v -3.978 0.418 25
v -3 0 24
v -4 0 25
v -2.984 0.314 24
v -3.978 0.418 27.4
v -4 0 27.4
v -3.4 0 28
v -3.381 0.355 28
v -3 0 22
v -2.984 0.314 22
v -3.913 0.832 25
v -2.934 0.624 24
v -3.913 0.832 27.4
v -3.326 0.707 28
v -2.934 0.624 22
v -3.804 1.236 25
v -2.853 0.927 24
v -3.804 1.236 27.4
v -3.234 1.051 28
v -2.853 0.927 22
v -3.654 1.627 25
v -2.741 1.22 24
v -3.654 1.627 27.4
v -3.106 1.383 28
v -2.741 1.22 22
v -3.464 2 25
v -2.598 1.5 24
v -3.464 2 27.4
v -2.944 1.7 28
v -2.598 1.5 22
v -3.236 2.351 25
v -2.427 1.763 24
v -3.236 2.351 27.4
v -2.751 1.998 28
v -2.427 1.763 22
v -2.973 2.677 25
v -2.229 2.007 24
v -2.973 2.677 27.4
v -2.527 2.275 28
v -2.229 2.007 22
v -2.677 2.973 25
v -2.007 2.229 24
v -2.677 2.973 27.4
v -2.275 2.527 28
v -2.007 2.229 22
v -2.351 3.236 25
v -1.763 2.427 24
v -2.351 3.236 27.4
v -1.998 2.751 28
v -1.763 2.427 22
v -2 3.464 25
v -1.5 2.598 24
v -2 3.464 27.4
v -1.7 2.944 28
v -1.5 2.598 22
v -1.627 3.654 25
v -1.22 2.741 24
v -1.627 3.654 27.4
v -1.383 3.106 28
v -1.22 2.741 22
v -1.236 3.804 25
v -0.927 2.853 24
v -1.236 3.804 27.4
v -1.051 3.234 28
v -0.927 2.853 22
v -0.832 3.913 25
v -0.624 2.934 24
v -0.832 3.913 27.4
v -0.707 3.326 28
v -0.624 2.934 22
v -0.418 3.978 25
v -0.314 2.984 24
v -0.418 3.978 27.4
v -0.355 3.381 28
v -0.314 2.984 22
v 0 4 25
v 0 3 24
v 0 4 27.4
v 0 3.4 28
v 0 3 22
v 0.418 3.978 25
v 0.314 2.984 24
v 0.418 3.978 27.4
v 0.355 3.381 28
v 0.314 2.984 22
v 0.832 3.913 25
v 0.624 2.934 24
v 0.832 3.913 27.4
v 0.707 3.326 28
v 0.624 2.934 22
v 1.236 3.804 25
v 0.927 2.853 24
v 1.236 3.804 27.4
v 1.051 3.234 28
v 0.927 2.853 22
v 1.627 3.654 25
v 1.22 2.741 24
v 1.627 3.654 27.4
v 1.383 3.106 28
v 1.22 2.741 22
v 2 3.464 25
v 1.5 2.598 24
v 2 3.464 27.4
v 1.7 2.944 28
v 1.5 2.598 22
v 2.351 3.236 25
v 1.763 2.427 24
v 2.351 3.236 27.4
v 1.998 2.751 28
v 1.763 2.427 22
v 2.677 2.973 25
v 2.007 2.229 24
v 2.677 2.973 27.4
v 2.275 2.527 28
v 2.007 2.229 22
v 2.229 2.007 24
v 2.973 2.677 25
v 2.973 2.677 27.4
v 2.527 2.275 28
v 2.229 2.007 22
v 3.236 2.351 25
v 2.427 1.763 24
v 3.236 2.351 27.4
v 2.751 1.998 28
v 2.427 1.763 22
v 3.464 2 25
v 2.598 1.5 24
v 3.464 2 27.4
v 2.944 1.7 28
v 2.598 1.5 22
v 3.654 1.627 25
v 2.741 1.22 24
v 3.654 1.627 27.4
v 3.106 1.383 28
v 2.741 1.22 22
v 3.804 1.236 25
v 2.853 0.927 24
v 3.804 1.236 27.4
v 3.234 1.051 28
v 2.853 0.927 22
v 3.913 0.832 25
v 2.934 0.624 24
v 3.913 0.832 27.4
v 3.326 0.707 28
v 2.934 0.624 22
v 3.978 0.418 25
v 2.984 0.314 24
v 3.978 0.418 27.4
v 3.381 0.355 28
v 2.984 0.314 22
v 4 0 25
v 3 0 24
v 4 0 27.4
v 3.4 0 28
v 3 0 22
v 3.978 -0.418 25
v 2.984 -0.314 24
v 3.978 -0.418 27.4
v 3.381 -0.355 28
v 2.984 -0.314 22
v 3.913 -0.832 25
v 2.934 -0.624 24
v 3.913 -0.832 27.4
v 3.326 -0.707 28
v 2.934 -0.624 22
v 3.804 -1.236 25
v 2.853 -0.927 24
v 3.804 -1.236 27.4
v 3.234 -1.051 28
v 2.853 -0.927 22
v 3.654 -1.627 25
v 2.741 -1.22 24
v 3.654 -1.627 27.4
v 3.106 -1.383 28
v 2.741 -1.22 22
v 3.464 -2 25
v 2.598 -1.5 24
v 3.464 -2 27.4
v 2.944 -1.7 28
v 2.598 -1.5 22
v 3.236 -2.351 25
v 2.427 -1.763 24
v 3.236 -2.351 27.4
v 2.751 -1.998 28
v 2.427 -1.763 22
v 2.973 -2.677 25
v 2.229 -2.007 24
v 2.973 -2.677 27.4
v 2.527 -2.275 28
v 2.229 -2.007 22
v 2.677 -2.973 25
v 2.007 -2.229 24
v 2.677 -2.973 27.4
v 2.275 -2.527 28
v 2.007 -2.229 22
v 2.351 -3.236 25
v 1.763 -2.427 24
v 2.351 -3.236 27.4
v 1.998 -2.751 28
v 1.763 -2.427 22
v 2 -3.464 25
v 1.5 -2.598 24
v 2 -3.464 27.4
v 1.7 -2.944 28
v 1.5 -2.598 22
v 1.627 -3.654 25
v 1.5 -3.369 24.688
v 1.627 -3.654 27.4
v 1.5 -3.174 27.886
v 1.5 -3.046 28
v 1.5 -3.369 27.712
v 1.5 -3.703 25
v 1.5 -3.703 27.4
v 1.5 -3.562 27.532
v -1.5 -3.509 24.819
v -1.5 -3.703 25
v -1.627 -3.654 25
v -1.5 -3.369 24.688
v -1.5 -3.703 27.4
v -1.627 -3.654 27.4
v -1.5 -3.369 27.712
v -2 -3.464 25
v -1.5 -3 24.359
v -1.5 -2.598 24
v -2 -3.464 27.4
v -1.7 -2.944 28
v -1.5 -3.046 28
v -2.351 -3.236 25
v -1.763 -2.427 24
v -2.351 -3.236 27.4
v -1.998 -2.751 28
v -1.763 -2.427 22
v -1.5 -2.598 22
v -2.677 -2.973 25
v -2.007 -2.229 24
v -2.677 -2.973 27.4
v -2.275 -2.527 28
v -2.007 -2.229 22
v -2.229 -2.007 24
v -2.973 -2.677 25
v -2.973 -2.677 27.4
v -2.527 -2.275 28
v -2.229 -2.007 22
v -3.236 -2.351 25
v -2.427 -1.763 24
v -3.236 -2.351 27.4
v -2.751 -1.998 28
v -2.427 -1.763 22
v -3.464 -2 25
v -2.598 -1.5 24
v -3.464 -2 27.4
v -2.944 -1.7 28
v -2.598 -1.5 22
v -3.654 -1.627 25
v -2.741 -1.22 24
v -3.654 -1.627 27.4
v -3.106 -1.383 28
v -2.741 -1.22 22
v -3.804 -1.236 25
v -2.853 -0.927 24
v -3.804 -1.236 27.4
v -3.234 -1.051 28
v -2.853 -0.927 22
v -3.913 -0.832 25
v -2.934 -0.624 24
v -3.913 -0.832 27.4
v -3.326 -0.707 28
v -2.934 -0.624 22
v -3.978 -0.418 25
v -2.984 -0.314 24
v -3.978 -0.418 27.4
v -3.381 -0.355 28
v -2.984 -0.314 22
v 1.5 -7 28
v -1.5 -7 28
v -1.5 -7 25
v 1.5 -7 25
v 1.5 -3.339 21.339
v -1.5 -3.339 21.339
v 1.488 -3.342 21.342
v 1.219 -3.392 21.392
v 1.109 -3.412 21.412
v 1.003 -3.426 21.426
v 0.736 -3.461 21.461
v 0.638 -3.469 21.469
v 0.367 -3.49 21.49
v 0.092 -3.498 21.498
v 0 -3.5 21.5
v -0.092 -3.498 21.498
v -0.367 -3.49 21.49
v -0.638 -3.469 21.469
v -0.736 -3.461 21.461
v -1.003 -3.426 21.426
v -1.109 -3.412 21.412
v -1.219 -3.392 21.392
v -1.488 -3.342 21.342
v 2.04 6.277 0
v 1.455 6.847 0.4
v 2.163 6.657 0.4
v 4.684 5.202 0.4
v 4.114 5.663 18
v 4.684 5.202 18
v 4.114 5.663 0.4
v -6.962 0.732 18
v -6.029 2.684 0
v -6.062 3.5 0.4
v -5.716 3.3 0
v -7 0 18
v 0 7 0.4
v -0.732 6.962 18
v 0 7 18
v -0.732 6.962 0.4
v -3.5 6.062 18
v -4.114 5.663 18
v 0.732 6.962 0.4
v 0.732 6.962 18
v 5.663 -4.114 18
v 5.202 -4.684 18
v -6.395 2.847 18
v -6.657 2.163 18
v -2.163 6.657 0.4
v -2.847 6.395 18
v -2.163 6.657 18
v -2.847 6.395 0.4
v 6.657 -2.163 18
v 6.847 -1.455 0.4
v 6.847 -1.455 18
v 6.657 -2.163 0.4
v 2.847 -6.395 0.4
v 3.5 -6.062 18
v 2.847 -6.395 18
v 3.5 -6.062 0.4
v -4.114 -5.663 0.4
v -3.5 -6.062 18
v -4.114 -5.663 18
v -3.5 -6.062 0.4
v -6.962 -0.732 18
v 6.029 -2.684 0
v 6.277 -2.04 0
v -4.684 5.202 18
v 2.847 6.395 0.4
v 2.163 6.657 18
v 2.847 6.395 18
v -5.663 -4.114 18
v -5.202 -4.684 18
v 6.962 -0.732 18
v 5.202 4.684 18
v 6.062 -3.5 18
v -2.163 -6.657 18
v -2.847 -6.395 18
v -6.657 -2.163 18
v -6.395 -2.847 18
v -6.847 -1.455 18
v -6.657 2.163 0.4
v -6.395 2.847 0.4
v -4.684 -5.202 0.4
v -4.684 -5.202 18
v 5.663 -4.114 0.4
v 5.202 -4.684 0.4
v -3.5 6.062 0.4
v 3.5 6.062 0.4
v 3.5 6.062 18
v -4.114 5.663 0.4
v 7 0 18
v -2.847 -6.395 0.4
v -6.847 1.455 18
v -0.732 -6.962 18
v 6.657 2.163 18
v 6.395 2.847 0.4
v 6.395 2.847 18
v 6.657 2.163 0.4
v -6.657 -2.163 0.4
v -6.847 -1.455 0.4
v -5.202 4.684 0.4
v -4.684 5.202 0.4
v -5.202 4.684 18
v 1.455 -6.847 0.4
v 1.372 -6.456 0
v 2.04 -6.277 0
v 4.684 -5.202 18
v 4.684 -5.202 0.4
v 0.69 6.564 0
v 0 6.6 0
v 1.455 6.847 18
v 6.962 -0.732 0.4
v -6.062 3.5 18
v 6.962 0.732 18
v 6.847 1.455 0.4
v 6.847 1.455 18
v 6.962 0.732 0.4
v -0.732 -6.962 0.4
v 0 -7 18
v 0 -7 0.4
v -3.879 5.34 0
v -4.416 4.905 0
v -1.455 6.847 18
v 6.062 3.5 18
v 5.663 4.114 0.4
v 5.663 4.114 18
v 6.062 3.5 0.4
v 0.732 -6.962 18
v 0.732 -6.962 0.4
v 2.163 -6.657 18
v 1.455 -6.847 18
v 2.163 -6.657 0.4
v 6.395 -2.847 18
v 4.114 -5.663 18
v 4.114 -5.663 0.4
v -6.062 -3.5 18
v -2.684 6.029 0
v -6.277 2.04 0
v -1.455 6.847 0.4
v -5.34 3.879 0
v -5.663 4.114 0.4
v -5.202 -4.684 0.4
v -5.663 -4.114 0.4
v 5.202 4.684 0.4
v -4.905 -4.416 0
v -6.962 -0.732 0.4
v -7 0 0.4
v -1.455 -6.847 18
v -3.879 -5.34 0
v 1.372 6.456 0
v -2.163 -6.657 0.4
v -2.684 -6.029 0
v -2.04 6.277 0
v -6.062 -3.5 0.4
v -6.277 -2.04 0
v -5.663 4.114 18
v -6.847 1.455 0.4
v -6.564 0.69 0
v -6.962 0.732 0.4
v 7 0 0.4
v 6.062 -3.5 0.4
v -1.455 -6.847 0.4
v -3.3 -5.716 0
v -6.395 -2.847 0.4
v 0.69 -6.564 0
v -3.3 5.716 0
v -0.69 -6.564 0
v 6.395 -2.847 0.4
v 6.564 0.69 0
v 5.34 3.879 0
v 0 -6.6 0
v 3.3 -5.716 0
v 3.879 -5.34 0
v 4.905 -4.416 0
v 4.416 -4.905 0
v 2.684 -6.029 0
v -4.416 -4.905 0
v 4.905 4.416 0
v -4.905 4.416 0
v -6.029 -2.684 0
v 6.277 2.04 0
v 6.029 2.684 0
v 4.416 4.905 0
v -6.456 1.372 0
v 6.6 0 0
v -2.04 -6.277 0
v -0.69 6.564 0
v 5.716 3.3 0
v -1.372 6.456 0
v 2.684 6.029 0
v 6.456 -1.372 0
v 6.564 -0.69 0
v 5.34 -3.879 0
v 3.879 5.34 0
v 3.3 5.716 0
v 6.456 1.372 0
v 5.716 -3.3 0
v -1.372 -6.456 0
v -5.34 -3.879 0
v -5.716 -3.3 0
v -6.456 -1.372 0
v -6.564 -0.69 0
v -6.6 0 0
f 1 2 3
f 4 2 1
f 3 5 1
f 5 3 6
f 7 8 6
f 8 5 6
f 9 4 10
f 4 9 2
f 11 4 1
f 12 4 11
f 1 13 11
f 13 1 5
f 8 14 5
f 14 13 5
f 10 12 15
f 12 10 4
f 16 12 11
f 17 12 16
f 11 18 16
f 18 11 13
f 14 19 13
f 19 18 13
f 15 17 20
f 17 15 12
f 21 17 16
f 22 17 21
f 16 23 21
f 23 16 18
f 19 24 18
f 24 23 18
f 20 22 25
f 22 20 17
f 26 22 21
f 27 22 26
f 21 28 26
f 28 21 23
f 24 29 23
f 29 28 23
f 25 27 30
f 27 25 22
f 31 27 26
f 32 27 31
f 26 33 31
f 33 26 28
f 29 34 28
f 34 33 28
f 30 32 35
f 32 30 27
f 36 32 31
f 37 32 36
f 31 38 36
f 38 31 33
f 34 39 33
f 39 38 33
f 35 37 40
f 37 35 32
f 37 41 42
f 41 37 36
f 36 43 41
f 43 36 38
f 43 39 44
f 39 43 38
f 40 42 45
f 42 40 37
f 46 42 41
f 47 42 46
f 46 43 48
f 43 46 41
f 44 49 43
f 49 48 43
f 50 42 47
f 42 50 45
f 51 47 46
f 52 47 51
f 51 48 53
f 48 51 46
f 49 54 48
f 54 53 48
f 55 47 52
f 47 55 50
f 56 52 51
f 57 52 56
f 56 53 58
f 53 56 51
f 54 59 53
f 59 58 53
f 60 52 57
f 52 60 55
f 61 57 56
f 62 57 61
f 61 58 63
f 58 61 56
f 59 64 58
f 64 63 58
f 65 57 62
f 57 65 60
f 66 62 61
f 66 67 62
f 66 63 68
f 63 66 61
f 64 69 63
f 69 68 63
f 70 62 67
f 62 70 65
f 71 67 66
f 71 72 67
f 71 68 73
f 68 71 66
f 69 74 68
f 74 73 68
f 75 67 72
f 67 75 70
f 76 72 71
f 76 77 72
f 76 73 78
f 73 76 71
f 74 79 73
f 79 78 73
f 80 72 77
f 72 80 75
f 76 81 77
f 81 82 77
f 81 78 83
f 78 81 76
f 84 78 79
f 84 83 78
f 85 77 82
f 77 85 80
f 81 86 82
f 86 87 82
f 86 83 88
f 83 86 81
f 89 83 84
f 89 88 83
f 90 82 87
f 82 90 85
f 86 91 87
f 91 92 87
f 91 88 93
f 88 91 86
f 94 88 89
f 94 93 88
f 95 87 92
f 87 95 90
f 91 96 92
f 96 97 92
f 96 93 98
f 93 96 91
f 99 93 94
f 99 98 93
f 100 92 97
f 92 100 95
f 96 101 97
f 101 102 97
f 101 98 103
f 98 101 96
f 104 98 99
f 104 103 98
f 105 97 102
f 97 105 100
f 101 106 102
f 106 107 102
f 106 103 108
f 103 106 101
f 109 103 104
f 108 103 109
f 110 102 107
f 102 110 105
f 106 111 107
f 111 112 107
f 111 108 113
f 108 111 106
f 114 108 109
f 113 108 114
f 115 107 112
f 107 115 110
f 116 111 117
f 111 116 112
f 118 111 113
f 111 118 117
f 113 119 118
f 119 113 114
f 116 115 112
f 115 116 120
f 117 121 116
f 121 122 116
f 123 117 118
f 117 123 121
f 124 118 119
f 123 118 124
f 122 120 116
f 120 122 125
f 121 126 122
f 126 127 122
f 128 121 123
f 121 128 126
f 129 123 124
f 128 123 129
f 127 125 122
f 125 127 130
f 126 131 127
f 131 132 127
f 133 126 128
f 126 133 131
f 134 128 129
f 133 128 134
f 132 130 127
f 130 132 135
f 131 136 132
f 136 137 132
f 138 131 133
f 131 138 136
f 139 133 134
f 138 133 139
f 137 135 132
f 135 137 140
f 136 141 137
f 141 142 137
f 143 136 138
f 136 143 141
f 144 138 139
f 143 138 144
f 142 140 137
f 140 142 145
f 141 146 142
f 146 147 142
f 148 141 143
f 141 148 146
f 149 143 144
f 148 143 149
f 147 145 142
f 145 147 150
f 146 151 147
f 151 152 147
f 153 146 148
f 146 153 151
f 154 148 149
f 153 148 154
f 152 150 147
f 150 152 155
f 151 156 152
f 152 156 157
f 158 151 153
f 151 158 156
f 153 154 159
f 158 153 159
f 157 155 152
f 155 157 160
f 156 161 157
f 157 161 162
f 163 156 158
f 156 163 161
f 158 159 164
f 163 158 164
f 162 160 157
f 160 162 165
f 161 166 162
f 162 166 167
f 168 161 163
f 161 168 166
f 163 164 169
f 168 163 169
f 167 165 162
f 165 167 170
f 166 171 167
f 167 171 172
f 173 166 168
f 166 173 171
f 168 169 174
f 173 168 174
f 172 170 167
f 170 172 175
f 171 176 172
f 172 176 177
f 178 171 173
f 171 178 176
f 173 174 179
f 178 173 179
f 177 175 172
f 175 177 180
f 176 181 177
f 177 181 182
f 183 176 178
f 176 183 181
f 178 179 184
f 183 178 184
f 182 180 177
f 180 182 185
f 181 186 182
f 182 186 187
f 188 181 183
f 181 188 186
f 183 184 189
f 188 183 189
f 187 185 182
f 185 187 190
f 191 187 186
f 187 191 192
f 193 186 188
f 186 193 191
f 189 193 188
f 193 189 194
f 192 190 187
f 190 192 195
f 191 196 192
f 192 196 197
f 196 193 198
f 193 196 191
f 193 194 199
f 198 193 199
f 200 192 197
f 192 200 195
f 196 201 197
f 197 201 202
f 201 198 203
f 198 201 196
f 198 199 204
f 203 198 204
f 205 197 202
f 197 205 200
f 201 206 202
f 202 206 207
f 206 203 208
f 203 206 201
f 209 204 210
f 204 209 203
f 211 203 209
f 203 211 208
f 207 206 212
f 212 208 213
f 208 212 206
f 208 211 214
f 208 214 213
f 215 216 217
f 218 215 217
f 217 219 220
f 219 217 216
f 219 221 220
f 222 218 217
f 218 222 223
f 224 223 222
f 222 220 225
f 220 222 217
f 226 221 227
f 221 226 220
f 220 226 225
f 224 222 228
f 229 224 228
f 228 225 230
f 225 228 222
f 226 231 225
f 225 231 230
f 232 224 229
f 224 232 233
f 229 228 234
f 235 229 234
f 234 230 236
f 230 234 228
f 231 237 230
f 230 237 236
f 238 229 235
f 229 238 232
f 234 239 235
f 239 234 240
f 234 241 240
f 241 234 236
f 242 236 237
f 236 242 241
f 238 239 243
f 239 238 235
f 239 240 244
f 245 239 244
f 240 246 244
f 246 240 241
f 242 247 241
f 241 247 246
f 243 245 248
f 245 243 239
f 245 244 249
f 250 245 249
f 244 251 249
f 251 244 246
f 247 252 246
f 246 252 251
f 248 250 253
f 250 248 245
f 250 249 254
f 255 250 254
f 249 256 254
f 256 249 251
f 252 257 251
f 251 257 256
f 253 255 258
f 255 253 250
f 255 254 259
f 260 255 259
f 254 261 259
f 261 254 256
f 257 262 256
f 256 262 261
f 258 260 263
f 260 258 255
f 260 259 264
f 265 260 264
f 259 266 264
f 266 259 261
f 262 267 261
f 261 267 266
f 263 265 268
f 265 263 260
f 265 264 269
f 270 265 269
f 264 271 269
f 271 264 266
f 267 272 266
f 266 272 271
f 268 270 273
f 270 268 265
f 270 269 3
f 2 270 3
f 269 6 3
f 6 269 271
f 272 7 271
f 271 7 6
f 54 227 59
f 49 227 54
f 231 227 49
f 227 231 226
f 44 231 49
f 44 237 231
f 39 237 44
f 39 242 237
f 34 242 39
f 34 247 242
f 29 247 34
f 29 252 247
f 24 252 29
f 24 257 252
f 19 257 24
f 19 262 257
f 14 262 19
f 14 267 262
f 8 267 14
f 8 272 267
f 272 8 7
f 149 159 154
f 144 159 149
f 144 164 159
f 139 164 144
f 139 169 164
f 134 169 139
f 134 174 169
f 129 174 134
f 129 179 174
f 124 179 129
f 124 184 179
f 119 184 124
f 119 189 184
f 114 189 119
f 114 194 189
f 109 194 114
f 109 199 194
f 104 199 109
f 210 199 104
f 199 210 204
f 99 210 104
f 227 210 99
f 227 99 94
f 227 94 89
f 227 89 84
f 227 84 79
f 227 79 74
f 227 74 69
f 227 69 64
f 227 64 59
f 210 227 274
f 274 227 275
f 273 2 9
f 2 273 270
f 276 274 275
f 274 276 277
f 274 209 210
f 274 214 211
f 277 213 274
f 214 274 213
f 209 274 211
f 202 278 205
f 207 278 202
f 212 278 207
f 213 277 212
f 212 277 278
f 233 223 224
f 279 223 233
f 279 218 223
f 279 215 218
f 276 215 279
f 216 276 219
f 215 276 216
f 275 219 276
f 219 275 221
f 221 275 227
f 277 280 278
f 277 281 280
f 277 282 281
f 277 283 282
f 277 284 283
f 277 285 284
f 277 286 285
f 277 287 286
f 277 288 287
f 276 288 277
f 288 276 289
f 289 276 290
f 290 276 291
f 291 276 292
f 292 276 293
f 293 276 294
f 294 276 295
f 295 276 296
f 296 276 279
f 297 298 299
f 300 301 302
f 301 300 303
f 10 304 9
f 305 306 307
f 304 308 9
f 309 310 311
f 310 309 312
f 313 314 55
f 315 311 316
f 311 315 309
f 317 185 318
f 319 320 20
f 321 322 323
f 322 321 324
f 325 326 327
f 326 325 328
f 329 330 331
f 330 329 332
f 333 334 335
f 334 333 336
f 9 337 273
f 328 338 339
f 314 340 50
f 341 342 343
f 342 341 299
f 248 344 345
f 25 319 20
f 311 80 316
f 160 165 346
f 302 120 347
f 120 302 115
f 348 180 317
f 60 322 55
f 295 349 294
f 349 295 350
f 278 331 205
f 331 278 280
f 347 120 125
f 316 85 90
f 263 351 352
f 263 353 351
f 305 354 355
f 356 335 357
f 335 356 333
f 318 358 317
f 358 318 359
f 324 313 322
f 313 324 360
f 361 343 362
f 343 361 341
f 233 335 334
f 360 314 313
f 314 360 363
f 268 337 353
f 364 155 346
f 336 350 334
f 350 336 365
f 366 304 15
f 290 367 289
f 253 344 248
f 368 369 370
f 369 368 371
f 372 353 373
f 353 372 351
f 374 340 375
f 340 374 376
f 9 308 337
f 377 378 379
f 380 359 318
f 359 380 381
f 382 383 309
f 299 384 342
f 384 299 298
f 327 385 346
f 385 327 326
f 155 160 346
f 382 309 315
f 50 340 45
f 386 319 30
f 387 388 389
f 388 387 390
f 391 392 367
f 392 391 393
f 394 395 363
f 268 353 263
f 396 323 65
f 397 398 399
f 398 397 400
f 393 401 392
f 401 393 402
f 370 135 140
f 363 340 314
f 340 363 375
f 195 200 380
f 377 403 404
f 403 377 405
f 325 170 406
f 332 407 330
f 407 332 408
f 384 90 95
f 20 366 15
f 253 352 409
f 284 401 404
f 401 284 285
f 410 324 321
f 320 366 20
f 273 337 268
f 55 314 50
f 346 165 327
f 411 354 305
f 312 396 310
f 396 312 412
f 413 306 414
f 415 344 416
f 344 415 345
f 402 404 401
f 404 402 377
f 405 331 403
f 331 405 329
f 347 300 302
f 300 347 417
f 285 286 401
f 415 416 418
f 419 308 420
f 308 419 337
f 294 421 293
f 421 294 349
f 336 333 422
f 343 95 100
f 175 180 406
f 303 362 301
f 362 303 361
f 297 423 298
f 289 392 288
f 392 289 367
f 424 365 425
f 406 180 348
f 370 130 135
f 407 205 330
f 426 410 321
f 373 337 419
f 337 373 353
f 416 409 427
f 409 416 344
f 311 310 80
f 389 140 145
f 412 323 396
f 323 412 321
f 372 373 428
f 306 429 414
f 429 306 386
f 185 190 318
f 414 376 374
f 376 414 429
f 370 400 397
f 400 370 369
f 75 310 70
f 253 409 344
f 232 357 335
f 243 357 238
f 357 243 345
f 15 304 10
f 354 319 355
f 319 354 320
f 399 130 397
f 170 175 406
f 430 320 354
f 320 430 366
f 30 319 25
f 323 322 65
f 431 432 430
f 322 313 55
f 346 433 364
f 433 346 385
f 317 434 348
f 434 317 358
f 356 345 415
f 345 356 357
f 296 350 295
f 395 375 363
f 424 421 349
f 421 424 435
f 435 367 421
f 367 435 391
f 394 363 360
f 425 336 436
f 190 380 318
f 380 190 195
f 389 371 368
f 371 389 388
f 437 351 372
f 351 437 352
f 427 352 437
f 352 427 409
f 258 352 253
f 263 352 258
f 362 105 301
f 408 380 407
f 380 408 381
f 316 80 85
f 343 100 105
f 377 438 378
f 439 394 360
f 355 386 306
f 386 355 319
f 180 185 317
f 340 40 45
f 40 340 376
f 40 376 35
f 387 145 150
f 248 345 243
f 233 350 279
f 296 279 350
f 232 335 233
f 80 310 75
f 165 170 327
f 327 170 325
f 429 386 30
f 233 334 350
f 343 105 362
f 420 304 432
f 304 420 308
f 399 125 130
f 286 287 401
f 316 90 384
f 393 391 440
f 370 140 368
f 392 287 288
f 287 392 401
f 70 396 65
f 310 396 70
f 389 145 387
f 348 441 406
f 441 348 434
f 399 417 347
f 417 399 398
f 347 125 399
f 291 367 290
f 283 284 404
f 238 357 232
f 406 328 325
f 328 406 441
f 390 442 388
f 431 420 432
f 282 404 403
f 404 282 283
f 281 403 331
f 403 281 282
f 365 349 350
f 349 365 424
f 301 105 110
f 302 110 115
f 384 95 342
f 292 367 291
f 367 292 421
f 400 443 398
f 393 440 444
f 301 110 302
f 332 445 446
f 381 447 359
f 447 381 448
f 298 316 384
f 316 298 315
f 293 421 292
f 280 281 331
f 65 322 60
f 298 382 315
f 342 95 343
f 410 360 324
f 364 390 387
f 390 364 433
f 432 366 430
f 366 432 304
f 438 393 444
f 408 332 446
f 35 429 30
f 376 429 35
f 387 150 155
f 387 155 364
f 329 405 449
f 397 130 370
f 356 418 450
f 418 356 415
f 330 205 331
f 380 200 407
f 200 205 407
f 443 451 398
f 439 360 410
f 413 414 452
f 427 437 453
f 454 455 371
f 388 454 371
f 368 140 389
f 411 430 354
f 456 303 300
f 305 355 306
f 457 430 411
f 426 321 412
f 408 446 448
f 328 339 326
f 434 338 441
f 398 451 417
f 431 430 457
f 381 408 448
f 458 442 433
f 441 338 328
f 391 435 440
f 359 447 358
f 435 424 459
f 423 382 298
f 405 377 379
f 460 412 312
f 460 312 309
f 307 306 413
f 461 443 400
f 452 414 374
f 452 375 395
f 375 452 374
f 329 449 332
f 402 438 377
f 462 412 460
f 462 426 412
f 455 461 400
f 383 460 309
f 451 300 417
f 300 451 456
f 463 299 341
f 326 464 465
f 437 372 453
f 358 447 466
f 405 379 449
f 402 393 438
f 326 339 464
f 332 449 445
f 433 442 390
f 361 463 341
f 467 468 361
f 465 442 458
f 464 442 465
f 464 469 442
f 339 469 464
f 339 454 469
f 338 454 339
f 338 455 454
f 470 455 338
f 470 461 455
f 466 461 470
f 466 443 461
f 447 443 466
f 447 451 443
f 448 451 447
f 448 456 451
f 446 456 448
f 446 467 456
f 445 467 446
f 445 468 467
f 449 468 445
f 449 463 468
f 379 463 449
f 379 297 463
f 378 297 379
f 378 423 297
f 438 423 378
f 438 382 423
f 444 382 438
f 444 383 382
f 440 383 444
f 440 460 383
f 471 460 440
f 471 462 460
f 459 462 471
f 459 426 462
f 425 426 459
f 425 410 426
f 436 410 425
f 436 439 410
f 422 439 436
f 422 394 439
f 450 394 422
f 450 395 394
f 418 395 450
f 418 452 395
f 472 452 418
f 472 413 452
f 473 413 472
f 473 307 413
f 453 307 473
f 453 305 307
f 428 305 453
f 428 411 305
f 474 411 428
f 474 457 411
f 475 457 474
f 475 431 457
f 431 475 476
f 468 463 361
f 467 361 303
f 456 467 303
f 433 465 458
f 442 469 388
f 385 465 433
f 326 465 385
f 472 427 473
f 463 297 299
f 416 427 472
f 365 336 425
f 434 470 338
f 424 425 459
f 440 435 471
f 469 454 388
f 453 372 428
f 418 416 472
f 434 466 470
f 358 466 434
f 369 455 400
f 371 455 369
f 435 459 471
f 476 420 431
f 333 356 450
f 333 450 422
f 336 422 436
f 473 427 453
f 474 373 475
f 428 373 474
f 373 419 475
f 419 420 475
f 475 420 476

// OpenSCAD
// hand_rub_bottle.scad - pump bottle of alcohol hand rub (design_brief.md 4.10). Dia 14 x 28:
// body to 18, 45 deg shoulder to a dia 6 neck at 22, pump head dia 8 to 28 reached by a
// 45 deg flare from the neck, 3 x 3 spout with a 45 deg underside reaching to the body
// radius. Two colours: body and shoulder, then neck and pump; change at Z 22.0.
// Prints upright.   Export: openscad -o hand_rub_bottle.stl hand_rub_bottle.scad
include <common.scad>

diameter    = 14;
body_h      = 18;
neck_d      = 6;
change_z    = 22;        // top of the shoulder, colour change
neck_h      = 2;         // straight neck above the change, before the flare to the head
head_d      = 8;
height      = 28;
spout       = 3;         // spout section (width and height) and reach beyond the head
top_chamfer = 0.6;

r  = diameter / 2;
rn = neck_d / 2;
rh = head_d / 2;
fn = 60;                 // same segment count for both bands, so they meet exactly at the change

// Band 1: body and shoulder, Z 0-22
module bottle_body() rotate_extrude($fn = fn)
    polygon([[0, 0], [r - chamfer_bottom, 0], [r, chamfer_bottom], [r, body_h], [rn, change_z], [0, change_z]]);

// Band 2: neck, flare, pump head and spout, Z 22-28
module bottle_pump() {
    rotate_extrude($fn = fn)
        polygon([[0, change_z], [rn, change_z], [rn, change_z + neck_h], [rh, change_z + neck_h + rh - rn],
                 [rh, height - top_chamfer], [rh - top_chamfer, height], [0, height]]);
    // spout in the y-z plane, extruded 'spout' wide in x; the 45 deg underside runs back into the body
    rotate([90, 0, 90]) linear_extrude(height = spout, center = true)
        polygon([[-rh - spout, height - spout], [-rh - spout, height], [1, height], [1, height - spout - rh - spout - 1]]);
}

module hand_rub_bottle() {
    band_colour(1) bottle_body();
    band_colour(2) bottle_pump();
}

hand_rub_bottle();
